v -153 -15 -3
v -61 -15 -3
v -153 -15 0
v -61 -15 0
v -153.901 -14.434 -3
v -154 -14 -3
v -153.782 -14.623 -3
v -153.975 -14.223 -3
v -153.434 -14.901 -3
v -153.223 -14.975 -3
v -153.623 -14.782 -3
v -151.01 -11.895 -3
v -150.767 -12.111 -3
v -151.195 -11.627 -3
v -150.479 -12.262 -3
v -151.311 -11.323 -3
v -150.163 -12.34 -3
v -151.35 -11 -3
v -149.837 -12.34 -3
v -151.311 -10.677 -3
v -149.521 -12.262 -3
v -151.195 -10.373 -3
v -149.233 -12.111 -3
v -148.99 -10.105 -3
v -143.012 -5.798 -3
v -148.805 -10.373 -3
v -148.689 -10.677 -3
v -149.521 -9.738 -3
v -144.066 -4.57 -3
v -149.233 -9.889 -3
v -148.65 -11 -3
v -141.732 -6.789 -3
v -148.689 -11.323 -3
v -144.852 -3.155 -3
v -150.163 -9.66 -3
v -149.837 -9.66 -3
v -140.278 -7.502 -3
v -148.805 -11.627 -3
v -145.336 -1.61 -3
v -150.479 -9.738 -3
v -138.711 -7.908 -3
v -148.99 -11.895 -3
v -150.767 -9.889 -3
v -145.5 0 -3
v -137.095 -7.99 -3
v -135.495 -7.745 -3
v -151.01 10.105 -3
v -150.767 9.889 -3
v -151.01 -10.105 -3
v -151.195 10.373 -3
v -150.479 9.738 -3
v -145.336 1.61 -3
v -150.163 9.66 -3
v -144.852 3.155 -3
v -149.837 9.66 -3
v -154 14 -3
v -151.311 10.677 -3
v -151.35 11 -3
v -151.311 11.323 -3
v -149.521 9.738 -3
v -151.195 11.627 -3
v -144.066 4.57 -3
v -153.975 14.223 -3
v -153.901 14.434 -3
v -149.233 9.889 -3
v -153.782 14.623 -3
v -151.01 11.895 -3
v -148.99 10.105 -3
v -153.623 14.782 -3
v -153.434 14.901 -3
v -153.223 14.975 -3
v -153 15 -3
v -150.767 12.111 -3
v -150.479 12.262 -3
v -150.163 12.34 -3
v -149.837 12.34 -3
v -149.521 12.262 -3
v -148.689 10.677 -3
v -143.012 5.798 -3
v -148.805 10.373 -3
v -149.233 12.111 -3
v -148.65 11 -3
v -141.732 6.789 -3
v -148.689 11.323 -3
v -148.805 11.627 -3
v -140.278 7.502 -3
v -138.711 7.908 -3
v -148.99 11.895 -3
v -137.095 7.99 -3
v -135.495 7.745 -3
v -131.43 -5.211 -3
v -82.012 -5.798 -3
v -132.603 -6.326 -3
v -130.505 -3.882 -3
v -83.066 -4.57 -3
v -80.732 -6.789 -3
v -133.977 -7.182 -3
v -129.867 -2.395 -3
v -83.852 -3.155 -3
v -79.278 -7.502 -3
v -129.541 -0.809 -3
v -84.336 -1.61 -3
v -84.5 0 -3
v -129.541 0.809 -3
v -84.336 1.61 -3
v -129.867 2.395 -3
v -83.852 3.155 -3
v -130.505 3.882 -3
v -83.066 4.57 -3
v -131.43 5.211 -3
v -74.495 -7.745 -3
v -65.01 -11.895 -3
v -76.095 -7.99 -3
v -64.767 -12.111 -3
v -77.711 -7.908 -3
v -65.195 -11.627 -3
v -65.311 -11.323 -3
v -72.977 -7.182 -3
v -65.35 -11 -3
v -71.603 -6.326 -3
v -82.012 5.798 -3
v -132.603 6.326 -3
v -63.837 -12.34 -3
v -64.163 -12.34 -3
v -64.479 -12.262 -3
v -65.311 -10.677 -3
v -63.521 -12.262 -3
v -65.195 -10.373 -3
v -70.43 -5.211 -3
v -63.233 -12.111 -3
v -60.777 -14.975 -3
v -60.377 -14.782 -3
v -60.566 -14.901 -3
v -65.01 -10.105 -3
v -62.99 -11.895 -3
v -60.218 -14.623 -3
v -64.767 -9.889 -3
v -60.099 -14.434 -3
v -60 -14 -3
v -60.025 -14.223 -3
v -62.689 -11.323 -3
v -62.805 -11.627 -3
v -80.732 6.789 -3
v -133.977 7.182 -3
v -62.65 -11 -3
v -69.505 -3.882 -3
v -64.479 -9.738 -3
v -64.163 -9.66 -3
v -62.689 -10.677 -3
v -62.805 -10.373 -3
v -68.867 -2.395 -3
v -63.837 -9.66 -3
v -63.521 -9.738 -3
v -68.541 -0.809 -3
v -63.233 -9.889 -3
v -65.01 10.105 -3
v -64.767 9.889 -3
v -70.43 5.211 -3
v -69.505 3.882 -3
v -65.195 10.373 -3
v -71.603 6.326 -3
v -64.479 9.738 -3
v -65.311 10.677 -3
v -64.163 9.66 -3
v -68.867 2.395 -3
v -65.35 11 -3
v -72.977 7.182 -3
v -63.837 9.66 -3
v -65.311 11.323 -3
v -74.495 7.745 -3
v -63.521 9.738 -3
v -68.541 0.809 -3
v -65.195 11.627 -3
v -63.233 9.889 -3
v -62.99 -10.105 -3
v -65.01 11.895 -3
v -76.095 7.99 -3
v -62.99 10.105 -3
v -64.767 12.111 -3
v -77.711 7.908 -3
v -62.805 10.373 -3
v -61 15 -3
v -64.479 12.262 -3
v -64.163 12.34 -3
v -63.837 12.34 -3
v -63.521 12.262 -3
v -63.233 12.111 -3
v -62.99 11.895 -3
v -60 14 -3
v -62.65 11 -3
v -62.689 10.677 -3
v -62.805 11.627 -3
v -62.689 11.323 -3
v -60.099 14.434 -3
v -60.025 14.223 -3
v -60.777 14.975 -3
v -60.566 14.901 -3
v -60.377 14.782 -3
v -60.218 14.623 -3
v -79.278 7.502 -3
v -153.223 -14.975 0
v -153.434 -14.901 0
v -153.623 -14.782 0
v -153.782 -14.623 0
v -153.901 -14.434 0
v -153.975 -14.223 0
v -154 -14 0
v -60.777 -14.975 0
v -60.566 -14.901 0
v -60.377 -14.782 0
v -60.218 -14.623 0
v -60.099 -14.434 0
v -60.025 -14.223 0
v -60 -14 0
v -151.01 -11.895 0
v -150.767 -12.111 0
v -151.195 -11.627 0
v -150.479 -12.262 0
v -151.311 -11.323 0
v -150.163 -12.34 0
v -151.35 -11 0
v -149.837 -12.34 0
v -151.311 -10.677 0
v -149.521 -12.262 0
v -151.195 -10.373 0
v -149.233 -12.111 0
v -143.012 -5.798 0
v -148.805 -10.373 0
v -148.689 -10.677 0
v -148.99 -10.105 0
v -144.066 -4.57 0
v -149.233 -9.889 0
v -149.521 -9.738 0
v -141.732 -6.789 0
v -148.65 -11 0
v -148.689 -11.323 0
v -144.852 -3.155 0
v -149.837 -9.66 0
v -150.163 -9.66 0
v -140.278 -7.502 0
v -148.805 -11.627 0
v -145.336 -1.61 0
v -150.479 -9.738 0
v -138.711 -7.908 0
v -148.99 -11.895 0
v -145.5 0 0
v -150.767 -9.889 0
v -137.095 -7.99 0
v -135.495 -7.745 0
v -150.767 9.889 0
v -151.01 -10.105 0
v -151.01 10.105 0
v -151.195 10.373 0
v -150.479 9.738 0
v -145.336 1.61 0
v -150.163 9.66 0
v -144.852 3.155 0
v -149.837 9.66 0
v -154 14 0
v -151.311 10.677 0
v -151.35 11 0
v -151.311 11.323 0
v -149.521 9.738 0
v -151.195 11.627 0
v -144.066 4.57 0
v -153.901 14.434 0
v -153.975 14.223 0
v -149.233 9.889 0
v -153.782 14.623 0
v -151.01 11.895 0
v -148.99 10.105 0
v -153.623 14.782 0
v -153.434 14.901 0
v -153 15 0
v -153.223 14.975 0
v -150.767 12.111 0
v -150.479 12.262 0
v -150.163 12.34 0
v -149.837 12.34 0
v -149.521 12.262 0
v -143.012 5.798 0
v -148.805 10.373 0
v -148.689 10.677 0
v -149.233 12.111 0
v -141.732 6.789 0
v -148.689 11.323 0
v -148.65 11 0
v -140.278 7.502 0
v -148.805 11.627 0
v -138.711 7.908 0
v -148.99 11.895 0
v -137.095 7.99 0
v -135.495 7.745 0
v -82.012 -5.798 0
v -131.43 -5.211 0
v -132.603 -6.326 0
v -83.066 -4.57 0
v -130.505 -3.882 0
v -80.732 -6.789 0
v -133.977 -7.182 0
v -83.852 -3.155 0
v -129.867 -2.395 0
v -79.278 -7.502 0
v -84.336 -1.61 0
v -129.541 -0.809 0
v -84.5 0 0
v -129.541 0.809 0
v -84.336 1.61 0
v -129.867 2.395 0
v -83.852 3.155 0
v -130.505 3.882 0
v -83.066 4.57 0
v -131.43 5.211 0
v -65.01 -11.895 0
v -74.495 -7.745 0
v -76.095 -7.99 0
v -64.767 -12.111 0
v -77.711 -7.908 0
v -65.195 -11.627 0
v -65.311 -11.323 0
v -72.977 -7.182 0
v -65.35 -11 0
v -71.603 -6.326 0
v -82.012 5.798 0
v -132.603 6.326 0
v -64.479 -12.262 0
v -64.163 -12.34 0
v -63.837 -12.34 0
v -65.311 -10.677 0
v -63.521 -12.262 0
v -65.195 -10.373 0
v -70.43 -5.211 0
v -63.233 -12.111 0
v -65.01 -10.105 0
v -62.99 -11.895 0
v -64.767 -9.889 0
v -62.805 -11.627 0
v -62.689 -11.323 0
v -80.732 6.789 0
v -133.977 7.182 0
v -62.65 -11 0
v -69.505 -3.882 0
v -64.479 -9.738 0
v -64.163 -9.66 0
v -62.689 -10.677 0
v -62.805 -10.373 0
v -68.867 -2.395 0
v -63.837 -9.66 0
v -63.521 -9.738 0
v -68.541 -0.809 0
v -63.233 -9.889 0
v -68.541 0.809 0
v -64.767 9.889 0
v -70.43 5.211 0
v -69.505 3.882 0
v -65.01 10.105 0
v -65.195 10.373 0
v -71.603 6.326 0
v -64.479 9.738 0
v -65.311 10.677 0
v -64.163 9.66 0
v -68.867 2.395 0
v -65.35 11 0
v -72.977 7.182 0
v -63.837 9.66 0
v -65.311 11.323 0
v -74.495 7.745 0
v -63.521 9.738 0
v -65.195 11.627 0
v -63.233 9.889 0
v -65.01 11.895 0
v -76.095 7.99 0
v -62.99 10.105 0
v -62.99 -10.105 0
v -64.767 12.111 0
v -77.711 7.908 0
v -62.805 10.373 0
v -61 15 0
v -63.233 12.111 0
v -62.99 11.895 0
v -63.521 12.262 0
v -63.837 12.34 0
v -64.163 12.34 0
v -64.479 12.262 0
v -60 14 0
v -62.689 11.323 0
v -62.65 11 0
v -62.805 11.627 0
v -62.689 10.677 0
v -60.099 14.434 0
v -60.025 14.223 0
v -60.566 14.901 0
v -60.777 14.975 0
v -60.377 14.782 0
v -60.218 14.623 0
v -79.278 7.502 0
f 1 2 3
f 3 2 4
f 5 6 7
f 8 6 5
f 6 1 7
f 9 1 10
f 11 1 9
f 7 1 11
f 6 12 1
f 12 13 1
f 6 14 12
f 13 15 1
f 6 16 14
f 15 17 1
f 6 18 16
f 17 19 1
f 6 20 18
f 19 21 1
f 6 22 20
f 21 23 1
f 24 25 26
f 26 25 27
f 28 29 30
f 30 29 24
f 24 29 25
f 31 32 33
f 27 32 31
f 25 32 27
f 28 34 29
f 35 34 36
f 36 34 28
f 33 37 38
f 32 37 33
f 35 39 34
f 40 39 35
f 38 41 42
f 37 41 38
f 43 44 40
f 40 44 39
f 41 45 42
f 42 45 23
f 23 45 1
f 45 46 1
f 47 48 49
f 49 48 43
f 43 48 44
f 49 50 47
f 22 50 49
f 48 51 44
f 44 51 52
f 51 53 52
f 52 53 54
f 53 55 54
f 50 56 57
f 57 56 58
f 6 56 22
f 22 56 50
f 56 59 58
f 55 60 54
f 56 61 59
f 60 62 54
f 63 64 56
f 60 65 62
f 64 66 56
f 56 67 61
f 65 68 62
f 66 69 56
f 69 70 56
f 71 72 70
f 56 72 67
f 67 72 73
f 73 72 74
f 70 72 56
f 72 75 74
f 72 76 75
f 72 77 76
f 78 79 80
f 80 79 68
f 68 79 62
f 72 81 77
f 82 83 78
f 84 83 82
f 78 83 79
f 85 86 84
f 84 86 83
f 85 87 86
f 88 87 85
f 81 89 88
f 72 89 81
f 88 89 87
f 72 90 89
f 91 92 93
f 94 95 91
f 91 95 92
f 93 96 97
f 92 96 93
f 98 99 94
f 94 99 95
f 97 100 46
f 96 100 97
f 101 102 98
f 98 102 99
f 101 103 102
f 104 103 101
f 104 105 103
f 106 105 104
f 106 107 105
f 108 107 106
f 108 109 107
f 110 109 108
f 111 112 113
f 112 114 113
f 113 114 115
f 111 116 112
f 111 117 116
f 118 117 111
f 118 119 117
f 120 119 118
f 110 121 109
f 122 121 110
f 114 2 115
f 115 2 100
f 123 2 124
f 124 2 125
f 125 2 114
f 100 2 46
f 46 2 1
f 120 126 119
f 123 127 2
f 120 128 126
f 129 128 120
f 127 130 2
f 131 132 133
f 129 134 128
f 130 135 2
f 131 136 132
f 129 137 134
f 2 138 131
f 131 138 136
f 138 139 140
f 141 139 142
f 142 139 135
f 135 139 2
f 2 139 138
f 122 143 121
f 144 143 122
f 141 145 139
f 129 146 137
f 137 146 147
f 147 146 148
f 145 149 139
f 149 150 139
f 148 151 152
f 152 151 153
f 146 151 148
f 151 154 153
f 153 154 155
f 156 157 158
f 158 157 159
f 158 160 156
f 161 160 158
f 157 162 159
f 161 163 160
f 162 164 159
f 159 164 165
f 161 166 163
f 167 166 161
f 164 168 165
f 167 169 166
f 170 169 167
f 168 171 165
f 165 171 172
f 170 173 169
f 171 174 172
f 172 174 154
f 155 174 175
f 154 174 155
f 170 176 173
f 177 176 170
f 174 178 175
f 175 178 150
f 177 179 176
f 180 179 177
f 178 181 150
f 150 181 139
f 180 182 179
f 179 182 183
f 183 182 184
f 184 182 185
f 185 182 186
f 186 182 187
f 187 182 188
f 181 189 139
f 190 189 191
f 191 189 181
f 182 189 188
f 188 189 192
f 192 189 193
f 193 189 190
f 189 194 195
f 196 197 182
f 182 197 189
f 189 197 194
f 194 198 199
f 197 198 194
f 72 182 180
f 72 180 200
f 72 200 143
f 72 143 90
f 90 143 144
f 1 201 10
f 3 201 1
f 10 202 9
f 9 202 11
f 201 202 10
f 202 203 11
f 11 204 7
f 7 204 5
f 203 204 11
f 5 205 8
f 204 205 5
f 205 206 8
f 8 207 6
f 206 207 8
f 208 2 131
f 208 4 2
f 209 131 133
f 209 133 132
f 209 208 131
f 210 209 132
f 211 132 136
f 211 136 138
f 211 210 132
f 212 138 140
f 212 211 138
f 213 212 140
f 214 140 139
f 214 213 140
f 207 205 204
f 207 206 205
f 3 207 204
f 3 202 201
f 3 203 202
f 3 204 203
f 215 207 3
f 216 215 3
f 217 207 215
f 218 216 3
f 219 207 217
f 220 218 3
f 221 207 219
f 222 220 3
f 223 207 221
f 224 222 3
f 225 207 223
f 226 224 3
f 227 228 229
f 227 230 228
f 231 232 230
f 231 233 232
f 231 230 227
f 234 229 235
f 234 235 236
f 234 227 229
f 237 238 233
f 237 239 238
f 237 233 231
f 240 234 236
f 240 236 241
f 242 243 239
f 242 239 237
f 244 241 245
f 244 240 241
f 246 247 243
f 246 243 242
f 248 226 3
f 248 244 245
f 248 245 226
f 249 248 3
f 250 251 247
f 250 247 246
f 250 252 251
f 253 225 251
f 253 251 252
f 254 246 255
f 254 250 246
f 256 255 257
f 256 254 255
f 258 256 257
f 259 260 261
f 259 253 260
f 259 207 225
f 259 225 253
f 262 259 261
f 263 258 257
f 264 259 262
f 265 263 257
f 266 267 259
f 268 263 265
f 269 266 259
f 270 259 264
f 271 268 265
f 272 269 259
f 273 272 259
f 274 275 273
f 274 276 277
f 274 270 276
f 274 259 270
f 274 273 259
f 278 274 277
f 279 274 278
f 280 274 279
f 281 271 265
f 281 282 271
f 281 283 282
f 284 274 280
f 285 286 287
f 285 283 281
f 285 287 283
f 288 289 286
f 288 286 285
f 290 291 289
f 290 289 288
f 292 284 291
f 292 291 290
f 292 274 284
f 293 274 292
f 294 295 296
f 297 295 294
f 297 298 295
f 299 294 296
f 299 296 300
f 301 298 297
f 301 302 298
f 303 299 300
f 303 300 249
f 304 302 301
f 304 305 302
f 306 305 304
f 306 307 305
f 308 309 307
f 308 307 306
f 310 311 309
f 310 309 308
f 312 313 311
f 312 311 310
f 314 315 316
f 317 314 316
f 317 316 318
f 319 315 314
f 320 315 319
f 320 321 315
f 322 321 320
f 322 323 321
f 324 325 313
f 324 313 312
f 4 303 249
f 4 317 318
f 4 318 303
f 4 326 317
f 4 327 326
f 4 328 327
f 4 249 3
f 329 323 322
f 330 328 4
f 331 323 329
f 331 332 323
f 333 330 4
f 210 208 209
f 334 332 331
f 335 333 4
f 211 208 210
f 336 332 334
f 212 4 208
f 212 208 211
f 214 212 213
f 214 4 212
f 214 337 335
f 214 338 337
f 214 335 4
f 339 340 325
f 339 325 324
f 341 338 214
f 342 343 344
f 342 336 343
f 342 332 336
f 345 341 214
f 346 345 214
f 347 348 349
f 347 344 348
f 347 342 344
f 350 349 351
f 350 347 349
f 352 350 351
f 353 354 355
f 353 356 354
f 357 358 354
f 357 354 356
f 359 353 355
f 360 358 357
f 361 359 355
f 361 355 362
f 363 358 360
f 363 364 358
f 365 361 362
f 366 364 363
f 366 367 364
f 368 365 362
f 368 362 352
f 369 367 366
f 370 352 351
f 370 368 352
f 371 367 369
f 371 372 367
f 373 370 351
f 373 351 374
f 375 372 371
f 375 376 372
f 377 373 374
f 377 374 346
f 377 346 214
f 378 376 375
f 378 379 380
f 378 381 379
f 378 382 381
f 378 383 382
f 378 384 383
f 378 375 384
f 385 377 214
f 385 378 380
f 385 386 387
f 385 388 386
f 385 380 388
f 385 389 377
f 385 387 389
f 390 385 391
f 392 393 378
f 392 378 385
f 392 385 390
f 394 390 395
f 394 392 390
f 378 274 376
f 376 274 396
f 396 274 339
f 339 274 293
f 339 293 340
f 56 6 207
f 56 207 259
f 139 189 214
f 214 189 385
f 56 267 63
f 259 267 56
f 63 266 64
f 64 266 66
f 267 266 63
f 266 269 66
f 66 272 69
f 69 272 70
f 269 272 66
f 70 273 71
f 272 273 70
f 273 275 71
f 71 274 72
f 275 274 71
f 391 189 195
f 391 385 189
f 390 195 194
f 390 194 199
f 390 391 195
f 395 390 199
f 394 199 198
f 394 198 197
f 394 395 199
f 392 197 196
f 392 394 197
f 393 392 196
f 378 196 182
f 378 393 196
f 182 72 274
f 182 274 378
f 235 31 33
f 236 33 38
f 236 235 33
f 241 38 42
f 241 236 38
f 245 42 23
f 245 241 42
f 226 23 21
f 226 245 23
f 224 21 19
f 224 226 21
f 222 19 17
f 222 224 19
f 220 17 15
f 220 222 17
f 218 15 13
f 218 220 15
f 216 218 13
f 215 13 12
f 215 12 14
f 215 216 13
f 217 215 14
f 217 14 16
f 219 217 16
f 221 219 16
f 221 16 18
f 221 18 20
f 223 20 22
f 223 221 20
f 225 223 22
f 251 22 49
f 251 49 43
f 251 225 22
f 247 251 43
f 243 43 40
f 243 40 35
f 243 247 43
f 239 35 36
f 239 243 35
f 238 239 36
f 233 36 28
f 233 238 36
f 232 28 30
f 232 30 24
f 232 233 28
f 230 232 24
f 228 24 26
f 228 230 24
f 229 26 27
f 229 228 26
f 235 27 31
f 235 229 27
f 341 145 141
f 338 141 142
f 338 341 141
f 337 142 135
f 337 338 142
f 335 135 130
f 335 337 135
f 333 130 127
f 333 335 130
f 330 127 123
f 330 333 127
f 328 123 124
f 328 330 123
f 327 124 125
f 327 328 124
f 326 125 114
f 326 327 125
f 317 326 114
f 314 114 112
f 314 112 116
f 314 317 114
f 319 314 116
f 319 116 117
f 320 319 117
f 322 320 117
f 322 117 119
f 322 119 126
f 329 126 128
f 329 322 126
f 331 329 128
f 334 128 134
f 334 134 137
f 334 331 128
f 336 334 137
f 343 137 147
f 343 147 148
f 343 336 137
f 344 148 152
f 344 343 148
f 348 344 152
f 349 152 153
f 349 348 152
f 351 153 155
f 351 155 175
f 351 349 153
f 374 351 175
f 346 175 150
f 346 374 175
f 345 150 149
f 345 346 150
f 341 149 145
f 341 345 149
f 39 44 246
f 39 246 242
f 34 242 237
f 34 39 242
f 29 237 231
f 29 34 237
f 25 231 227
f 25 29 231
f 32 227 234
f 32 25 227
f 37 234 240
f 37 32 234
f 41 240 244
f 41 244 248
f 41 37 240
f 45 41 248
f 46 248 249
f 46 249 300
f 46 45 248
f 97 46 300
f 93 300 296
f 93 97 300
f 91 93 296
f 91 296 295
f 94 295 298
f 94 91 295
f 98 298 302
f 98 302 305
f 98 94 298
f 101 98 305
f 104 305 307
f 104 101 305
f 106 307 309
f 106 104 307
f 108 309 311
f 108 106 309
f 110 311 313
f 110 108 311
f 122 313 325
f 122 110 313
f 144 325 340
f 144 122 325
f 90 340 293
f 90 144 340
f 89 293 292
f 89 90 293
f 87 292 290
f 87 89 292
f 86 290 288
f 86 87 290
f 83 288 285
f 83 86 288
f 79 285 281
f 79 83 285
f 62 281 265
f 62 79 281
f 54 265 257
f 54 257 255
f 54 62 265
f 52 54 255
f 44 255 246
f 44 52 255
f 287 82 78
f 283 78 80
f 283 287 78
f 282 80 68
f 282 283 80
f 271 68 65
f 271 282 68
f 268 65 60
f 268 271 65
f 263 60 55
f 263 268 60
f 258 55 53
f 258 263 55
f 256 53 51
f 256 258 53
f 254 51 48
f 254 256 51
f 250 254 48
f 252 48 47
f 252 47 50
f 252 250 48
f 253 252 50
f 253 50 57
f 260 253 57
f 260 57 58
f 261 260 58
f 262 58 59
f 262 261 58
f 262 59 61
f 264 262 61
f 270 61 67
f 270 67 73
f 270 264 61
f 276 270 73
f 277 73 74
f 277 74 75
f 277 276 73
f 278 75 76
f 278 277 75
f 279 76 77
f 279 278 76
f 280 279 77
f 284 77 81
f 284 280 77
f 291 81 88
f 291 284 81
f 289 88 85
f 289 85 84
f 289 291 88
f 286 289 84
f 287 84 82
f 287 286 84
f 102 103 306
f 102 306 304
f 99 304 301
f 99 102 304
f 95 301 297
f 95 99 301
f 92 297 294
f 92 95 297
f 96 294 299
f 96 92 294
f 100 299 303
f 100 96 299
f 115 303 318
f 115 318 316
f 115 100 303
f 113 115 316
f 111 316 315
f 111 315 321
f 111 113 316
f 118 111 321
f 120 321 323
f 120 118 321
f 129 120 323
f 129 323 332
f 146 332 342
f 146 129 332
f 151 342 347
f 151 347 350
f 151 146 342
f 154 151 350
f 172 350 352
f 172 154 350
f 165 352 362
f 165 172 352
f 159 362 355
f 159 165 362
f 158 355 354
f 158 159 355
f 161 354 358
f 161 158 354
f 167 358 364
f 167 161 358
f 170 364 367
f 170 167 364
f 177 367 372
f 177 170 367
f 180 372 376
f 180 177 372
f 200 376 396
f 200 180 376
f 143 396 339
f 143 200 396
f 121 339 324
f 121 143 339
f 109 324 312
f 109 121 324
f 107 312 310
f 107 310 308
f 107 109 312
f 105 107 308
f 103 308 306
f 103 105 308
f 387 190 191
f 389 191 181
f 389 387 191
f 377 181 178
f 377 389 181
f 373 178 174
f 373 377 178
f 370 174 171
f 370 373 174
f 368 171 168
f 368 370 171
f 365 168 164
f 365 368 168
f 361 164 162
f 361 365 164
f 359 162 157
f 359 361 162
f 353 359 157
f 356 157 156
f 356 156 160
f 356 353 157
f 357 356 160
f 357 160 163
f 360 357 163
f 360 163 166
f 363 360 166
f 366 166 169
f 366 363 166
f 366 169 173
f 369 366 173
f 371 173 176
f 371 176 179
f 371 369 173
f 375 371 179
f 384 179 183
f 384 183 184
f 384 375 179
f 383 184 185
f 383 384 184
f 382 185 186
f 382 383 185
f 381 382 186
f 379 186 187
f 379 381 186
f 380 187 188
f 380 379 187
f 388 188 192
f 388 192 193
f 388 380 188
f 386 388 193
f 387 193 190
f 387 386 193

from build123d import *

# Parameters (mm, degrees)
SKETCH006_W             = 94
SKETCH006_H             = 30
PAD002_DEPTH            = 3
SKETCH008_R             = 8
HOLE002_DEPTH           = 25
SKETCH007_R             = 1.35
HOLE003_DEPTH           = 25
FILLET001_R             = 1
BODY001_PLACEMENT_ANGLE = 180


with BuildPart() as part:
    # Sketch006 → Pad002 (new body)
    with BuildSketch(Plane(origin=(0, 0, -13), x_dir=(1, 0, 0), z_dir=(0, 0, -1))):
        with Locations((107, 0)):
            Rectangle(SKETCH006_W, SKETCH006_H)
    extrude(amount=-PAD002_DEPTH)

    # Sketch008 (on Face6 of Pad002) → Hole002 (cut)
    with BuildSketch(Plane.XY.offset(-10)):
        with Locations((76.5, 0)):
            Circle(SKETCH008_R)
        with Locations((137.5, 0)):
            Circle(SKETCH008_R)
    extrude(amount=-HOLE002_DEPTH, mode=Mode.SUBTRACT)

    # Sketch007 (on Face5 of Pad002) → Hole003 (cut)
    with BuildSketch(Plane(origin=(0, 0, -13), x_dir=(1, 0, 0), z_dir=(0, 0, -1))):
        with Locations((64, -11)):
            Circle(SKETCH007_R)
        with Locations((64, 11)):
            Circle(SKETCH007_R)
        with Locations((150, 11)):
            Circle(SKETCH007_R)
        with Locations((150, -11)):
            Circle(SKETCH007_R)
    extrude(amount=-HOLE003_DEPTH, mode=Mode.SUBTRACT)

    # Fillet001
    fillet001_edges = [part.edges().sort_by_distance(p)[0] for p in [
        (154, -15, -11.5),
        (154, 15, -11.5),
        (60, 15, -11.5),
        (60, -15, -11.5),
    ]]
    fillet(fillet001_edges, radius=FILLET001_R)


with BuildPart() as part_1:
    # Body001 placement: moved
    add(part.part.moved(Location((0, 0, -13))).rotate(Axis((0, 0, -13), (0, 1, 0)), BODY001_PLACEMENT_ANGLE))


solid = part_1.part
